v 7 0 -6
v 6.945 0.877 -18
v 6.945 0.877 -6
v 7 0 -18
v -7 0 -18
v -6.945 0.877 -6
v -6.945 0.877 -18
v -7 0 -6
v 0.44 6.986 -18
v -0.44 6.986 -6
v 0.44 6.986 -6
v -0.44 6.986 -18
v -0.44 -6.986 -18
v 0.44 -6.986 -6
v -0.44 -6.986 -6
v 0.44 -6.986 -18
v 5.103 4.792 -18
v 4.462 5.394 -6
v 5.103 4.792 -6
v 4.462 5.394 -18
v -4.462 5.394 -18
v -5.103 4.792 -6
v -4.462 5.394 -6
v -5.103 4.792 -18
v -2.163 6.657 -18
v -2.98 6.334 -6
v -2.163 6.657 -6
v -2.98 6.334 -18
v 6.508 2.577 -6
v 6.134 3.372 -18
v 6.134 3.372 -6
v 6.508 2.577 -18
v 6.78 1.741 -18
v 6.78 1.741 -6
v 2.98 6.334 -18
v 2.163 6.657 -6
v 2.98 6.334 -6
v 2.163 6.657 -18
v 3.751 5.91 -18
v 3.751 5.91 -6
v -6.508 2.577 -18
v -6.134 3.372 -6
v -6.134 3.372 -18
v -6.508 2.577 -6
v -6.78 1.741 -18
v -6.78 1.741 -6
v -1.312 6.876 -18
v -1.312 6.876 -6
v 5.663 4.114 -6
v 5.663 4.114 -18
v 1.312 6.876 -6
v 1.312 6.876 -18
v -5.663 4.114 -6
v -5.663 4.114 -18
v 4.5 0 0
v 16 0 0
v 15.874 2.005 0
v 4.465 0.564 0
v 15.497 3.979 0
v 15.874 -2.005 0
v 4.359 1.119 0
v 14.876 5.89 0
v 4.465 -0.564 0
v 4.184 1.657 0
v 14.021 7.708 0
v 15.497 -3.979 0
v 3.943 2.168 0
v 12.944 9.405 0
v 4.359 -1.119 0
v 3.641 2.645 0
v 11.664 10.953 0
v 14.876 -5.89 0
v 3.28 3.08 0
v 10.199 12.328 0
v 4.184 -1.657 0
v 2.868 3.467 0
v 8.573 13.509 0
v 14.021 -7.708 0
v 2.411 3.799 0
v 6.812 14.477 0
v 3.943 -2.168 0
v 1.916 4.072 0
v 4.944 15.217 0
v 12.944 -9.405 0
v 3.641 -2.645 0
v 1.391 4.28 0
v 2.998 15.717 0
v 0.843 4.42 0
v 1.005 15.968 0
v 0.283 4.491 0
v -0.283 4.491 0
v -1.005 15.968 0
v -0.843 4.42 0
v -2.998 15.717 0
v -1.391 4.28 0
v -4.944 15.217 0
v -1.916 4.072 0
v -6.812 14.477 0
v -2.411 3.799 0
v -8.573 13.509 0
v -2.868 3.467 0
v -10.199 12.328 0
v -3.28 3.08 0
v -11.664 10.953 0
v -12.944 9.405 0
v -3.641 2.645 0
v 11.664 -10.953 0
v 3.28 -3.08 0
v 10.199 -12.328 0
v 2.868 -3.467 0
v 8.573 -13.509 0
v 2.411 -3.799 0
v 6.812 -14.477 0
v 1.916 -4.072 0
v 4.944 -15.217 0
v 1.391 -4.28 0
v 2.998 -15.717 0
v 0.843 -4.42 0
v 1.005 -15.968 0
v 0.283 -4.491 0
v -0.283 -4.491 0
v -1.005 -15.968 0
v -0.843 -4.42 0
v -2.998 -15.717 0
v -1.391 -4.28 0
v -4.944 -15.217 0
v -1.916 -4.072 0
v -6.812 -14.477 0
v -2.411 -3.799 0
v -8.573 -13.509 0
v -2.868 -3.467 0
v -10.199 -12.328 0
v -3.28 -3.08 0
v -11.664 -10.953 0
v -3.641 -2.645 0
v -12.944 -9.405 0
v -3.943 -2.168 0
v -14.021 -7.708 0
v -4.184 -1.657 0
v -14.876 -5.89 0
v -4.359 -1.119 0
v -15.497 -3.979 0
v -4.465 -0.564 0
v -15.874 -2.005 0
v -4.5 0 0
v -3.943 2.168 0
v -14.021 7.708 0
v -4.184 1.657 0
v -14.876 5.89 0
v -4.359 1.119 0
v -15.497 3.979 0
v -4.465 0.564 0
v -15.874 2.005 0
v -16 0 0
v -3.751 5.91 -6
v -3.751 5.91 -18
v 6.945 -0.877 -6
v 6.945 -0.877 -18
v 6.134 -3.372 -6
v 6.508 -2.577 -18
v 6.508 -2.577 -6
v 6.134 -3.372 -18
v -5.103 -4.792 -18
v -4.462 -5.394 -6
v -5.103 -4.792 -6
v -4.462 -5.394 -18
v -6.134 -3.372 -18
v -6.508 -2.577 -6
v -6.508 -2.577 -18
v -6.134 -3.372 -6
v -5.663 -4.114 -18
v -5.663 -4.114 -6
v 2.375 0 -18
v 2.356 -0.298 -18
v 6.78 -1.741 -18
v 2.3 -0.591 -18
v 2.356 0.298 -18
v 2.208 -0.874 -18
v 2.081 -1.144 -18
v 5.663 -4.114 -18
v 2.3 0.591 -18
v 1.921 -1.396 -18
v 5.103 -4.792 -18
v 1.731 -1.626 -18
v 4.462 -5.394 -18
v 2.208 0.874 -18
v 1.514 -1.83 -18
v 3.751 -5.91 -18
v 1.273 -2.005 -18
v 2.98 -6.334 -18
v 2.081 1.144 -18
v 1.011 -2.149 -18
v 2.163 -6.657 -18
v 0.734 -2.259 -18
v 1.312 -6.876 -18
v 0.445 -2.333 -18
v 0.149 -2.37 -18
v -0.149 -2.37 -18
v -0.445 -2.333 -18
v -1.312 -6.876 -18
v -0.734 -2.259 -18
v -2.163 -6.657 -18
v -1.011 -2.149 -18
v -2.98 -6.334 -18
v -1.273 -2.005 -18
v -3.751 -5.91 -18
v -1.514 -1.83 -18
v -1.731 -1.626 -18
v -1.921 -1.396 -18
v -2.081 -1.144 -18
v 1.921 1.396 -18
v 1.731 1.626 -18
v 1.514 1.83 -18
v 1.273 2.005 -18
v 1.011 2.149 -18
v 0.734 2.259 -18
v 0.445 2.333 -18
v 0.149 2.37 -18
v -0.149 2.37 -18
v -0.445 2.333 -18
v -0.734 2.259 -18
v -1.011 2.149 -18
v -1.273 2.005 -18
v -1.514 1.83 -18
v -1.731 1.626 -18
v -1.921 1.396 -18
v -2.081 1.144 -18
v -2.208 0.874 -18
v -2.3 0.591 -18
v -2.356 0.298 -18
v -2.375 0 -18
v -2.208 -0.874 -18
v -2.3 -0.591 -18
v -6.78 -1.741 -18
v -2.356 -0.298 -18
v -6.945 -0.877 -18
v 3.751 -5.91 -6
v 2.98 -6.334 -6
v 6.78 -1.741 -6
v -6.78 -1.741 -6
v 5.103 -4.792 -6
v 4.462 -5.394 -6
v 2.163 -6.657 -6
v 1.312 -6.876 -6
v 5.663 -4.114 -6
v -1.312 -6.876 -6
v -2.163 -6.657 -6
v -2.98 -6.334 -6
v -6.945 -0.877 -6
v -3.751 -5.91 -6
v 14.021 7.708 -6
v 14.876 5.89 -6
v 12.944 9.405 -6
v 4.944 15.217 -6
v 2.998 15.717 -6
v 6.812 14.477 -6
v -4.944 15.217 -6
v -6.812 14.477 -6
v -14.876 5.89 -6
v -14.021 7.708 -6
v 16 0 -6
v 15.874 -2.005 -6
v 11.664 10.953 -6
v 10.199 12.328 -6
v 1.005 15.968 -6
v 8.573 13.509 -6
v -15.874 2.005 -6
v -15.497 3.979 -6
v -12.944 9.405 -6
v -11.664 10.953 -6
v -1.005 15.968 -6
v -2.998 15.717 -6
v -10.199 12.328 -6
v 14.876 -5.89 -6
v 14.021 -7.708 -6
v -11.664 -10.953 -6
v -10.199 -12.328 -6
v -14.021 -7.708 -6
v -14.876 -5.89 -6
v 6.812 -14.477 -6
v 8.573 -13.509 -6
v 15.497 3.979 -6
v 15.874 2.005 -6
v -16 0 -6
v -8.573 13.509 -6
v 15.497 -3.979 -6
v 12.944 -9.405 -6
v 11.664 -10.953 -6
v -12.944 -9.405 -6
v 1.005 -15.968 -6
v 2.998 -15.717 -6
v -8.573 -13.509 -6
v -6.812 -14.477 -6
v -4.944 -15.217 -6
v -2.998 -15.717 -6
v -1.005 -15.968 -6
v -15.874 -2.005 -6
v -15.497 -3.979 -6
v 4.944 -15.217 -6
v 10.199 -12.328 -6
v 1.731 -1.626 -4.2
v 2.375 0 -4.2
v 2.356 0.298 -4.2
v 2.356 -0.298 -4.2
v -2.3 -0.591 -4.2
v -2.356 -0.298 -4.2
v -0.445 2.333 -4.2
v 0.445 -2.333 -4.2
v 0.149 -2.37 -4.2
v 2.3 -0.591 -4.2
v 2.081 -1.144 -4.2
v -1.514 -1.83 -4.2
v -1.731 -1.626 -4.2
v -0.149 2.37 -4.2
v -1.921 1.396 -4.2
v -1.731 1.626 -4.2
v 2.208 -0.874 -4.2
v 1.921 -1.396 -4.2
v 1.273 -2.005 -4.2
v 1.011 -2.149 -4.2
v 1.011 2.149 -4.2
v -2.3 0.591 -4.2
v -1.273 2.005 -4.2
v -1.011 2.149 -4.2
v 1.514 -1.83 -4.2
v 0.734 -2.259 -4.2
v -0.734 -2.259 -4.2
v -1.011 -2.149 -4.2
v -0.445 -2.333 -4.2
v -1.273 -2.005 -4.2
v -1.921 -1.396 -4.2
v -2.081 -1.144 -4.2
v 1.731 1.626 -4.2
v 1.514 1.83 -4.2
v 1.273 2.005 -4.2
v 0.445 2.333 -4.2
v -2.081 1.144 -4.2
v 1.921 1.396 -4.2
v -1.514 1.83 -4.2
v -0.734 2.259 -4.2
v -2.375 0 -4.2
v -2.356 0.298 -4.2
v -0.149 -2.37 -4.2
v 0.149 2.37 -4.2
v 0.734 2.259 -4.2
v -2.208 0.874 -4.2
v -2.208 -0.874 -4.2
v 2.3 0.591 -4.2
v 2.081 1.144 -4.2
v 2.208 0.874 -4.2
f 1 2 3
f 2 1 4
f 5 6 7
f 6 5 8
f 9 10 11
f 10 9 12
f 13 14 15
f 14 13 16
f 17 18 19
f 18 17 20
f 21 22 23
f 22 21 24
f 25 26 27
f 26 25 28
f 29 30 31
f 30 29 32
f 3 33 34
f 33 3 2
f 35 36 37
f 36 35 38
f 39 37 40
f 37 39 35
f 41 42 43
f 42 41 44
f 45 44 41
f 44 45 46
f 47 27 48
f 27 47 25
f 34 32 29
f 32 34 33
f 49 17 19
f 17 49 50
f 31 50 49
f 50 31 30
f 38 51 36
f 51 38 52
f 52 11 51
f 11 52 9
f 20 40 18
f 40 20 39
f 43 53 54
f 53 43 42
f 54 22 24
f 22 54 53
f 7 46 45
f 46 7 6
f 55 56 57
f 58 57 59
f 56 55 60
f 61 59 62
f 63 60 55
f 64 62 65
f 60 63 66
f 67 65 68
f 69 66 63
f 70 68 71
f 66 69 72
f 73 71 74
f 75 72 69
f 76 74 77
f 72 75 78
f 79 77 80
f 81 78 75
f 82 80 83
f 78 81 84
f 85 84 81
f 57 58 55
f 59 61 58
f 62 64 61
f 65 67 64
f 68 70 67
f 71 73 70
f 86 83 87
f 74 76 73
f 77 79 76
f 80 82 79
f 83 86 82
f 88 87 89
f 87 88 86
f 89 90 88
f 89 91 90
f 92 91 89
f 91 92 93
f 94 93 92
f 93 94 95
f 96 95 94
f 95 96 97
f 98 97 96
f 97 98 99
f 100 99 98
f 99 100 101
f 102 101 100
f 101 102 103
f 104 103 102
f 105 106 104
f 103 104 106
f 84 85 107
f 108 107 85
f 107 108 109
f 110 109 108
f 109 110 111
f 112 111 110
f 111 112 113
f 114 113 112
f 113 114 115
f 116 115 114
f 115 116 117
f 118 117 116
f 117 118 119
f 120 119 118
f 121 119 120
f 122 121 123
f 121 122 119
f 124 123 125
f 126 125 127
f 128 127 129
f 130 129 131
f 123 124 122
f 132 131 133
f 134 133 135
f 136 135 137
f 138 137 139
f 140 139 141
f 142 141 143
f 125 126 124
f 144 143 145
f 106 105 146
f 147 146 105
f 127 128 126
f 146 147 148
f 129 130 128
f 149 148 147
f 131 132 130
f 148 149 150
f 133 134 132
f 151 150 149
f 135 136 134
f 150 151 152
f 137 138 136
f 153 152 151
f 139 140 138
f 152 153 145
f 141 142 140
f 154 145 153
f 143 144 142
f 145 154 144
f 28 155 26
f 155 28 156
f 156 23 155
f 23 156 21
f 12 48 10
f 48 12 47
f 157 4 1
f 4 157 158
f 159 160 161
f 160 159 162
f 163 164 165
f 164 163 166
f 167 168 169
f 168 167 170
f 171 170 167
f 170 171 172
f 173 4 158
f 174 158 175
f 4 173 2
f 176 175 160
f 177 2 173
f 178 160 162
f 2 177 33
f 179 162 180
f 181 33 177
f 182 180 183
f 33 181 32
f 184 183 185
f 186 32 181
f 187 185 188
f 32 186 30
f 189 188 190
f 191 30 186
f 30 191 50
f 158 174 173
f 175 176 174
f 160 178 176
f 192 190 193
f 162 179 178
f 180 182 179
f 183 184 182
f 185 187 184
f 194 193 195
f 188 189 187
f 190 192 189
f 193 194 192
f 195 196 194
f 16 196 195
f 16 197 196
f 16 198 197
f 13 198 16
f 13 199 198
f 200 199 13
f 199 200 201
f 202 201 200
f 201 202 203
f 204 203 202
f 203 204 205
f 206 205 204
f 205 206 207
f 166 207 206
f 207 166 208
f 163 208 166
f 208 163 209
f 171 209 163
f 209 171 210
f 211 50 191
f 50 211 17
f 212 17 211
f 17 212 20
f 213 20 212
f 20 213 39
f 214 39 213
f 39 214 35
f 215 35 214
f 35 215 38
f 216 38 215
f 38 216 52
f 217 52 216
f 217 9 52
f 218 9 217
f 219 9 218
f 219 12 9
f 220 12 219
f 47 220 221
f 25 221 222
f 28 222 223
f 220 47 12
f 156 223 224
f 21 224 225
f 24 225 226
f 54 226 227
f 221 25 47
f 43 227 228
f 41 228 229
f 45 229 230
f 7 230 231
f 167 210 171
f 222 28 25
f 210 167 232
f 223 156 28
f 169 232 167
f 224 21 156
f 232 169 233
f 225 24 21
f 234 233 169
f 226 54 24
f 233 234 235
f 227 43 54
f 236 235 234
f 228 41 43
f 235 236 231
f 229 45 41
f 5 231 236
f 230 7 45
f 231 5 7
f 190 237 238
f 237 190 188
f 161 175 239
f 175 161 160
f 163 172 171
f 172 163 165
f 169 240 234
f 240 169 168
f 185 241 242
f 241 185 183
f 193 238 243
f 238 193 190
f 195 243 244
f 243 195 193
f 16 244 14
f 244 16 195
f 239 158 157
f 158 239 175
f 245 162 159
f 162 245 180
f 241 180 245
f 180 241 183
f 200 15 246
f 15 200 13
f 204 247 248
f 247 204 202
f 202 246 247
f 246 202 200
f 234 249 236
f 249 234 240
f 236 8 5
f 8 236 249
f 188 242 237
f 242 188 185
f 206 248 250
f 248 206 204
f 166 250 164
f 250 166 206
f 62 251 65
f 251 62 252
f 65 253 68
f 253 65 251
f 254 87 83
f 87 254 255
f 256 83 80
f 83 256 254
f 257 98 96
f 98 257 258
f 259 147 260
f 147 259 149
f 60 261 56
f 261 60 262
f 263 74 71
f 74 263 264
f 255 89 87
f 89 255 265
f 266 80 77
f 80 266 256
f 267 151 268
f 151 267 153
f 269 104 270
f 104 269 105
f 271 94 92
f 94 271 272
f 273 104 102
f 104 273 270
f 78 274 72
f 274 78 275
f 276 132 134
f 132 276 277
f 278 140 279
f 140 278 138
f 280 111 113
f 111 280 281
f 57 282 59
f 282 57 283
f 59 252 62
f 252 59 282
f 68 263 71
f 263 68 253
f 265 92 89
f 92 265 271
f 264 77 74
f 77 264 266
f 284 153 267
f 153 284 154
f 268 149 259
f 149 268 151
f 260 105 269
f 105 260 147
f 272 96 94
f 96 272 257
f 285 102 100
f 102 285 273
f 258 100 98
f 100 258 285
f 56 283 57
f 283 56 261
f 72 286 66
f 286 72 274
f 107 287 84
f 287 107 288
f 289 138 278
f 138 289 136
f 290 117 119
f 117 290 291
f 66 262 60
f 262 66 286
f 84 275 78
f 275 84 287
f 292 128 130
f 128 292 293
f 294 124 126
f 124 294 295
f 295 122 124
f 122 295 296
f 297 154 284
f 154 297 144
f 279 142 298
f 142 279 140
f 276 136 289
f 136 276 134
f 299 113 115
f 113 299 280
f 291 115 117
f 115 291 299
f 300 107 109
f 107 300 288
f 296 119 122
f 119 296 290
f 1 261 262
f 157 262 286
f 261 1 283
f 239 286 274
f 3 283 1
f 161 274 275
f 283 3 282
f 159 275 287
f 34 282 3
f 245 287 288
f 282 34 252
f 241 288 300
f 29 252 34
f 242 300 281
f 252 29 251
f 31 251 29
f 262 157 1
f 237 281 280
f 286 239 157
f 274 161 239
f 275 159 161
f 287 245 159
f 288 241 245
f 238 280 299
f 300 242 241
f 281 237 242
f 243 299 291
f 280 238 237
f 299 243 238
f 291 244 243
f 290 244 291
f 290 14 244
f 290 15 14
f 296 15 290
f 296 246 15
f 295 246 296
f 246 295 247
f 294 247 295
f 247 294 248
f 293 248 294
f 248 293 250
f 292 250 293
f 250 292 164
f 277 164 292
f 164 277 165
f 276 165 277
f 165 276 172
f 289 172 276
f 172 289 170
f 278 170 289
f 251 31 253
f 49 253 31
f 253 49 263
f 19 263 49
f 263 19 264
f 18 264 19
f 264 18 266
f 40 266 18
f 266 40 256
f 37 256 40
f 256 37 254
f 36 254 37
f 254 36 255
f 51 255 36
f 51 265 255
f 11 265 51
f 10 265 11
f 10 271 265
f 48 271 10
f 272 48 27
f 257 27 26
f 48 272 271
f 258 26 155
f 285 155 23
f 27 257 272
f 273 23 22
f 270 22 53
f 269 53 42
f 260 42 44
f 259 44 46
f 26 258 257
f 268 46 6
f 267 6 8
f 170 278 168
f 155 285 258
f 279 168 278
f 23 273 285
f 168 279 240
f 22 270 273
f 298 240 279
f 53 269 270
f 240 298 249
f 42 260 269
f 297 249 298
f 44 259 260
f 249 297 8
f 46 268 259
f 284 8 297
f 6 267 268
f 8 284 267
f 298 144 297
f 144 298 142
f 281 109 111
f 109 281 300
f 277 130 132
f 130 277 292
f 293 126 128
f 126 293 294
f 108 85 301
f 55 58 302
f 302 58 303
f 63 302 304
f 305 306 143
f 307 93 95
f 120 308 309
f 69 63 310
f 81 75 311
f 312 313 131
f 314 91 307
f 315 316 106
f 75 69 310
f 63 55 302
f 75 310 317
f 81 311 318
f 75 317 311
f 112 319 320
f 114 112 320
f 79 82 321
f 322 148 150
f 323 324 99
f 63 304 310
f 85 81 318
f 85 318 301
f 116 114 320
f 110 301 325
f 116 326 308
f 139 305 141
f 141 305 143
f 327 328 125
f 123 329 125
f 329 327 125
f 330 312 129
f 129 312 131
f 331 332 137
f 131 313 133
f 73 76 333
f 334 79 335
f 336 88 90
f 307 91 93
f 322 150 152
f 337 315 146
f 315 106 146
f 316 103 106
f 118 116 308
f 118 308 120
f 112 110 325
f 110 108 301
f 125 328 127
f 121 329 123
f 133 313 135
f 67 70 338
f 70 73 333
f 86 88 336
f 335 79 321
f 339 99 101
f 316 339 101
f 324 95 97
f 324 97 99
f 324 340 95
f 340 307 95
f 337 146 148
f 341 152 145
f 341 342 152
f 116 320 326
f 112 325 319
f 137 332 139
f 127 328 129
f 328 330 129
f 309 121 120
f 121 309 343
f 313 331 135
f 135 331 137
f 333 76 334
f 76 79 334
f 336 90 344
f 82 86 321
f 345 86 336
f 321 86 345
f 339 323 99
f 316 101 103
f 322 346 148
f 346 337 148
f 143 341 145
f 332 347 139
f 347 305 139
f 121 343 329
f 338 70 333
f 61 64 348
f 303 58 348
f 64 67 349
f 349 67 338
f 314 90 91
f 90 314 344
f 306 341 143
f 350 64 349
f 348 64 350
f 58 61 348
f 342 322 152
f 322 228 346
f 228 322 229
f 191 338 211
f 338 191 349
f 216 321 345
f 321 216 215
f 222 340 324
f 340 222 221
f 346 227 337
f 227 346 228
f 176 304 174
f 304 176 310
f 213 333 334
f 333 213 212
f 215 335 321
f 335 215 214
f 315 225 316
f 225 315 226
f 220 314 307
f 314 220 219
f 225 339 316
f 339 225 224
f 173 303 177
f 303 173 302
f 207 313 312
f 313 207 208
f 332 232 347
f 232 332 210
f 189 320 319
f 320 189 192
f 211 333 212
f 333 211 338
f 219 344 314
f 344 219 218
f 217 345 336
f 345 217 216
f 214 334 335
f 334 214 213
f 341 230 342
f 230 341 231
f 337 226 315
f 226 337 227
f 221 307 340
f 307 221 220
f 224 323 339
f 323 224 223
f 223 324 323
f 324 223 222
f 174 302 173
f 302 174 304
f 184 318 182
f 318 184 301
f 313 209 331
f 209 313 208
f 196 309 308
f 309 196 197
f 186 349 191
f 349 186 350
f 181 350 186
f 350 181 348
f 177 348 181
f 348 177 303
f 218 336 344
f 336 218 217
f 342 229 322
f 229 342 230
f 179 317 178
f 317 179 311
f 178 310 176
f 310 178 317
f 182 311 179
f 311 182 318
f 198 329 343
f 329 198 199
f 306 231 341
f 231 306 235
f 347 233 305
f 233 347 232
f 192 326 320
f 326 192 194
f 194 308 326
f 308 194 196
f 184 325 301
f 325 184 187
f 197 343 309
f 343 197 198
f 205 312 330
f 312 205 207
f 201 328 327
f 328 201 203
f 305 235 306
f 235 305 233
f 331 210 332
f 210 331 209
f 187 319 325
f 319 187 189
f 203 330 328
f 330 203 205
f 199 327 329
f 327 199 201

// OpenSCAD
$fn = 50;


difference() {
	union() {
		translate(v = [0, 0, -18.0000000000]) {
			cylinder(h = 18, r = 7.0000000000);
		}
		translate(v = [0, 0, -6.0000000000]) {
			cylinder(h = 6, r = 16.0000000000);
		}
	}
	union() {
		translate(v = [0, 0, 0]) {
			rotate(a = [0, 0, 0]) {
				difference() {
					union() {
						#translate(v = [0, 0, -18.0000000000]) {
							cylinder(h = 18, r = 2.2500000000);
						}
						#translate(v = [0, 0, -4.2000000000]) {
							cylinder(h = 4.2000000000, r = 7.0000000000, r1 = 2.3750000000, r2 = 4.5000000000);
						}
						#translate(v = [0, 0, -18.0000000000]) {
							cylinder(h = 18, r = 2.3750000000);
						}
						#translate(v = [0, 0, -18.0000000000]) {
							cylinder(h = 18, r = 2.2500000000);
						}
					}
					union();
				}
			}
		}
	}
}
